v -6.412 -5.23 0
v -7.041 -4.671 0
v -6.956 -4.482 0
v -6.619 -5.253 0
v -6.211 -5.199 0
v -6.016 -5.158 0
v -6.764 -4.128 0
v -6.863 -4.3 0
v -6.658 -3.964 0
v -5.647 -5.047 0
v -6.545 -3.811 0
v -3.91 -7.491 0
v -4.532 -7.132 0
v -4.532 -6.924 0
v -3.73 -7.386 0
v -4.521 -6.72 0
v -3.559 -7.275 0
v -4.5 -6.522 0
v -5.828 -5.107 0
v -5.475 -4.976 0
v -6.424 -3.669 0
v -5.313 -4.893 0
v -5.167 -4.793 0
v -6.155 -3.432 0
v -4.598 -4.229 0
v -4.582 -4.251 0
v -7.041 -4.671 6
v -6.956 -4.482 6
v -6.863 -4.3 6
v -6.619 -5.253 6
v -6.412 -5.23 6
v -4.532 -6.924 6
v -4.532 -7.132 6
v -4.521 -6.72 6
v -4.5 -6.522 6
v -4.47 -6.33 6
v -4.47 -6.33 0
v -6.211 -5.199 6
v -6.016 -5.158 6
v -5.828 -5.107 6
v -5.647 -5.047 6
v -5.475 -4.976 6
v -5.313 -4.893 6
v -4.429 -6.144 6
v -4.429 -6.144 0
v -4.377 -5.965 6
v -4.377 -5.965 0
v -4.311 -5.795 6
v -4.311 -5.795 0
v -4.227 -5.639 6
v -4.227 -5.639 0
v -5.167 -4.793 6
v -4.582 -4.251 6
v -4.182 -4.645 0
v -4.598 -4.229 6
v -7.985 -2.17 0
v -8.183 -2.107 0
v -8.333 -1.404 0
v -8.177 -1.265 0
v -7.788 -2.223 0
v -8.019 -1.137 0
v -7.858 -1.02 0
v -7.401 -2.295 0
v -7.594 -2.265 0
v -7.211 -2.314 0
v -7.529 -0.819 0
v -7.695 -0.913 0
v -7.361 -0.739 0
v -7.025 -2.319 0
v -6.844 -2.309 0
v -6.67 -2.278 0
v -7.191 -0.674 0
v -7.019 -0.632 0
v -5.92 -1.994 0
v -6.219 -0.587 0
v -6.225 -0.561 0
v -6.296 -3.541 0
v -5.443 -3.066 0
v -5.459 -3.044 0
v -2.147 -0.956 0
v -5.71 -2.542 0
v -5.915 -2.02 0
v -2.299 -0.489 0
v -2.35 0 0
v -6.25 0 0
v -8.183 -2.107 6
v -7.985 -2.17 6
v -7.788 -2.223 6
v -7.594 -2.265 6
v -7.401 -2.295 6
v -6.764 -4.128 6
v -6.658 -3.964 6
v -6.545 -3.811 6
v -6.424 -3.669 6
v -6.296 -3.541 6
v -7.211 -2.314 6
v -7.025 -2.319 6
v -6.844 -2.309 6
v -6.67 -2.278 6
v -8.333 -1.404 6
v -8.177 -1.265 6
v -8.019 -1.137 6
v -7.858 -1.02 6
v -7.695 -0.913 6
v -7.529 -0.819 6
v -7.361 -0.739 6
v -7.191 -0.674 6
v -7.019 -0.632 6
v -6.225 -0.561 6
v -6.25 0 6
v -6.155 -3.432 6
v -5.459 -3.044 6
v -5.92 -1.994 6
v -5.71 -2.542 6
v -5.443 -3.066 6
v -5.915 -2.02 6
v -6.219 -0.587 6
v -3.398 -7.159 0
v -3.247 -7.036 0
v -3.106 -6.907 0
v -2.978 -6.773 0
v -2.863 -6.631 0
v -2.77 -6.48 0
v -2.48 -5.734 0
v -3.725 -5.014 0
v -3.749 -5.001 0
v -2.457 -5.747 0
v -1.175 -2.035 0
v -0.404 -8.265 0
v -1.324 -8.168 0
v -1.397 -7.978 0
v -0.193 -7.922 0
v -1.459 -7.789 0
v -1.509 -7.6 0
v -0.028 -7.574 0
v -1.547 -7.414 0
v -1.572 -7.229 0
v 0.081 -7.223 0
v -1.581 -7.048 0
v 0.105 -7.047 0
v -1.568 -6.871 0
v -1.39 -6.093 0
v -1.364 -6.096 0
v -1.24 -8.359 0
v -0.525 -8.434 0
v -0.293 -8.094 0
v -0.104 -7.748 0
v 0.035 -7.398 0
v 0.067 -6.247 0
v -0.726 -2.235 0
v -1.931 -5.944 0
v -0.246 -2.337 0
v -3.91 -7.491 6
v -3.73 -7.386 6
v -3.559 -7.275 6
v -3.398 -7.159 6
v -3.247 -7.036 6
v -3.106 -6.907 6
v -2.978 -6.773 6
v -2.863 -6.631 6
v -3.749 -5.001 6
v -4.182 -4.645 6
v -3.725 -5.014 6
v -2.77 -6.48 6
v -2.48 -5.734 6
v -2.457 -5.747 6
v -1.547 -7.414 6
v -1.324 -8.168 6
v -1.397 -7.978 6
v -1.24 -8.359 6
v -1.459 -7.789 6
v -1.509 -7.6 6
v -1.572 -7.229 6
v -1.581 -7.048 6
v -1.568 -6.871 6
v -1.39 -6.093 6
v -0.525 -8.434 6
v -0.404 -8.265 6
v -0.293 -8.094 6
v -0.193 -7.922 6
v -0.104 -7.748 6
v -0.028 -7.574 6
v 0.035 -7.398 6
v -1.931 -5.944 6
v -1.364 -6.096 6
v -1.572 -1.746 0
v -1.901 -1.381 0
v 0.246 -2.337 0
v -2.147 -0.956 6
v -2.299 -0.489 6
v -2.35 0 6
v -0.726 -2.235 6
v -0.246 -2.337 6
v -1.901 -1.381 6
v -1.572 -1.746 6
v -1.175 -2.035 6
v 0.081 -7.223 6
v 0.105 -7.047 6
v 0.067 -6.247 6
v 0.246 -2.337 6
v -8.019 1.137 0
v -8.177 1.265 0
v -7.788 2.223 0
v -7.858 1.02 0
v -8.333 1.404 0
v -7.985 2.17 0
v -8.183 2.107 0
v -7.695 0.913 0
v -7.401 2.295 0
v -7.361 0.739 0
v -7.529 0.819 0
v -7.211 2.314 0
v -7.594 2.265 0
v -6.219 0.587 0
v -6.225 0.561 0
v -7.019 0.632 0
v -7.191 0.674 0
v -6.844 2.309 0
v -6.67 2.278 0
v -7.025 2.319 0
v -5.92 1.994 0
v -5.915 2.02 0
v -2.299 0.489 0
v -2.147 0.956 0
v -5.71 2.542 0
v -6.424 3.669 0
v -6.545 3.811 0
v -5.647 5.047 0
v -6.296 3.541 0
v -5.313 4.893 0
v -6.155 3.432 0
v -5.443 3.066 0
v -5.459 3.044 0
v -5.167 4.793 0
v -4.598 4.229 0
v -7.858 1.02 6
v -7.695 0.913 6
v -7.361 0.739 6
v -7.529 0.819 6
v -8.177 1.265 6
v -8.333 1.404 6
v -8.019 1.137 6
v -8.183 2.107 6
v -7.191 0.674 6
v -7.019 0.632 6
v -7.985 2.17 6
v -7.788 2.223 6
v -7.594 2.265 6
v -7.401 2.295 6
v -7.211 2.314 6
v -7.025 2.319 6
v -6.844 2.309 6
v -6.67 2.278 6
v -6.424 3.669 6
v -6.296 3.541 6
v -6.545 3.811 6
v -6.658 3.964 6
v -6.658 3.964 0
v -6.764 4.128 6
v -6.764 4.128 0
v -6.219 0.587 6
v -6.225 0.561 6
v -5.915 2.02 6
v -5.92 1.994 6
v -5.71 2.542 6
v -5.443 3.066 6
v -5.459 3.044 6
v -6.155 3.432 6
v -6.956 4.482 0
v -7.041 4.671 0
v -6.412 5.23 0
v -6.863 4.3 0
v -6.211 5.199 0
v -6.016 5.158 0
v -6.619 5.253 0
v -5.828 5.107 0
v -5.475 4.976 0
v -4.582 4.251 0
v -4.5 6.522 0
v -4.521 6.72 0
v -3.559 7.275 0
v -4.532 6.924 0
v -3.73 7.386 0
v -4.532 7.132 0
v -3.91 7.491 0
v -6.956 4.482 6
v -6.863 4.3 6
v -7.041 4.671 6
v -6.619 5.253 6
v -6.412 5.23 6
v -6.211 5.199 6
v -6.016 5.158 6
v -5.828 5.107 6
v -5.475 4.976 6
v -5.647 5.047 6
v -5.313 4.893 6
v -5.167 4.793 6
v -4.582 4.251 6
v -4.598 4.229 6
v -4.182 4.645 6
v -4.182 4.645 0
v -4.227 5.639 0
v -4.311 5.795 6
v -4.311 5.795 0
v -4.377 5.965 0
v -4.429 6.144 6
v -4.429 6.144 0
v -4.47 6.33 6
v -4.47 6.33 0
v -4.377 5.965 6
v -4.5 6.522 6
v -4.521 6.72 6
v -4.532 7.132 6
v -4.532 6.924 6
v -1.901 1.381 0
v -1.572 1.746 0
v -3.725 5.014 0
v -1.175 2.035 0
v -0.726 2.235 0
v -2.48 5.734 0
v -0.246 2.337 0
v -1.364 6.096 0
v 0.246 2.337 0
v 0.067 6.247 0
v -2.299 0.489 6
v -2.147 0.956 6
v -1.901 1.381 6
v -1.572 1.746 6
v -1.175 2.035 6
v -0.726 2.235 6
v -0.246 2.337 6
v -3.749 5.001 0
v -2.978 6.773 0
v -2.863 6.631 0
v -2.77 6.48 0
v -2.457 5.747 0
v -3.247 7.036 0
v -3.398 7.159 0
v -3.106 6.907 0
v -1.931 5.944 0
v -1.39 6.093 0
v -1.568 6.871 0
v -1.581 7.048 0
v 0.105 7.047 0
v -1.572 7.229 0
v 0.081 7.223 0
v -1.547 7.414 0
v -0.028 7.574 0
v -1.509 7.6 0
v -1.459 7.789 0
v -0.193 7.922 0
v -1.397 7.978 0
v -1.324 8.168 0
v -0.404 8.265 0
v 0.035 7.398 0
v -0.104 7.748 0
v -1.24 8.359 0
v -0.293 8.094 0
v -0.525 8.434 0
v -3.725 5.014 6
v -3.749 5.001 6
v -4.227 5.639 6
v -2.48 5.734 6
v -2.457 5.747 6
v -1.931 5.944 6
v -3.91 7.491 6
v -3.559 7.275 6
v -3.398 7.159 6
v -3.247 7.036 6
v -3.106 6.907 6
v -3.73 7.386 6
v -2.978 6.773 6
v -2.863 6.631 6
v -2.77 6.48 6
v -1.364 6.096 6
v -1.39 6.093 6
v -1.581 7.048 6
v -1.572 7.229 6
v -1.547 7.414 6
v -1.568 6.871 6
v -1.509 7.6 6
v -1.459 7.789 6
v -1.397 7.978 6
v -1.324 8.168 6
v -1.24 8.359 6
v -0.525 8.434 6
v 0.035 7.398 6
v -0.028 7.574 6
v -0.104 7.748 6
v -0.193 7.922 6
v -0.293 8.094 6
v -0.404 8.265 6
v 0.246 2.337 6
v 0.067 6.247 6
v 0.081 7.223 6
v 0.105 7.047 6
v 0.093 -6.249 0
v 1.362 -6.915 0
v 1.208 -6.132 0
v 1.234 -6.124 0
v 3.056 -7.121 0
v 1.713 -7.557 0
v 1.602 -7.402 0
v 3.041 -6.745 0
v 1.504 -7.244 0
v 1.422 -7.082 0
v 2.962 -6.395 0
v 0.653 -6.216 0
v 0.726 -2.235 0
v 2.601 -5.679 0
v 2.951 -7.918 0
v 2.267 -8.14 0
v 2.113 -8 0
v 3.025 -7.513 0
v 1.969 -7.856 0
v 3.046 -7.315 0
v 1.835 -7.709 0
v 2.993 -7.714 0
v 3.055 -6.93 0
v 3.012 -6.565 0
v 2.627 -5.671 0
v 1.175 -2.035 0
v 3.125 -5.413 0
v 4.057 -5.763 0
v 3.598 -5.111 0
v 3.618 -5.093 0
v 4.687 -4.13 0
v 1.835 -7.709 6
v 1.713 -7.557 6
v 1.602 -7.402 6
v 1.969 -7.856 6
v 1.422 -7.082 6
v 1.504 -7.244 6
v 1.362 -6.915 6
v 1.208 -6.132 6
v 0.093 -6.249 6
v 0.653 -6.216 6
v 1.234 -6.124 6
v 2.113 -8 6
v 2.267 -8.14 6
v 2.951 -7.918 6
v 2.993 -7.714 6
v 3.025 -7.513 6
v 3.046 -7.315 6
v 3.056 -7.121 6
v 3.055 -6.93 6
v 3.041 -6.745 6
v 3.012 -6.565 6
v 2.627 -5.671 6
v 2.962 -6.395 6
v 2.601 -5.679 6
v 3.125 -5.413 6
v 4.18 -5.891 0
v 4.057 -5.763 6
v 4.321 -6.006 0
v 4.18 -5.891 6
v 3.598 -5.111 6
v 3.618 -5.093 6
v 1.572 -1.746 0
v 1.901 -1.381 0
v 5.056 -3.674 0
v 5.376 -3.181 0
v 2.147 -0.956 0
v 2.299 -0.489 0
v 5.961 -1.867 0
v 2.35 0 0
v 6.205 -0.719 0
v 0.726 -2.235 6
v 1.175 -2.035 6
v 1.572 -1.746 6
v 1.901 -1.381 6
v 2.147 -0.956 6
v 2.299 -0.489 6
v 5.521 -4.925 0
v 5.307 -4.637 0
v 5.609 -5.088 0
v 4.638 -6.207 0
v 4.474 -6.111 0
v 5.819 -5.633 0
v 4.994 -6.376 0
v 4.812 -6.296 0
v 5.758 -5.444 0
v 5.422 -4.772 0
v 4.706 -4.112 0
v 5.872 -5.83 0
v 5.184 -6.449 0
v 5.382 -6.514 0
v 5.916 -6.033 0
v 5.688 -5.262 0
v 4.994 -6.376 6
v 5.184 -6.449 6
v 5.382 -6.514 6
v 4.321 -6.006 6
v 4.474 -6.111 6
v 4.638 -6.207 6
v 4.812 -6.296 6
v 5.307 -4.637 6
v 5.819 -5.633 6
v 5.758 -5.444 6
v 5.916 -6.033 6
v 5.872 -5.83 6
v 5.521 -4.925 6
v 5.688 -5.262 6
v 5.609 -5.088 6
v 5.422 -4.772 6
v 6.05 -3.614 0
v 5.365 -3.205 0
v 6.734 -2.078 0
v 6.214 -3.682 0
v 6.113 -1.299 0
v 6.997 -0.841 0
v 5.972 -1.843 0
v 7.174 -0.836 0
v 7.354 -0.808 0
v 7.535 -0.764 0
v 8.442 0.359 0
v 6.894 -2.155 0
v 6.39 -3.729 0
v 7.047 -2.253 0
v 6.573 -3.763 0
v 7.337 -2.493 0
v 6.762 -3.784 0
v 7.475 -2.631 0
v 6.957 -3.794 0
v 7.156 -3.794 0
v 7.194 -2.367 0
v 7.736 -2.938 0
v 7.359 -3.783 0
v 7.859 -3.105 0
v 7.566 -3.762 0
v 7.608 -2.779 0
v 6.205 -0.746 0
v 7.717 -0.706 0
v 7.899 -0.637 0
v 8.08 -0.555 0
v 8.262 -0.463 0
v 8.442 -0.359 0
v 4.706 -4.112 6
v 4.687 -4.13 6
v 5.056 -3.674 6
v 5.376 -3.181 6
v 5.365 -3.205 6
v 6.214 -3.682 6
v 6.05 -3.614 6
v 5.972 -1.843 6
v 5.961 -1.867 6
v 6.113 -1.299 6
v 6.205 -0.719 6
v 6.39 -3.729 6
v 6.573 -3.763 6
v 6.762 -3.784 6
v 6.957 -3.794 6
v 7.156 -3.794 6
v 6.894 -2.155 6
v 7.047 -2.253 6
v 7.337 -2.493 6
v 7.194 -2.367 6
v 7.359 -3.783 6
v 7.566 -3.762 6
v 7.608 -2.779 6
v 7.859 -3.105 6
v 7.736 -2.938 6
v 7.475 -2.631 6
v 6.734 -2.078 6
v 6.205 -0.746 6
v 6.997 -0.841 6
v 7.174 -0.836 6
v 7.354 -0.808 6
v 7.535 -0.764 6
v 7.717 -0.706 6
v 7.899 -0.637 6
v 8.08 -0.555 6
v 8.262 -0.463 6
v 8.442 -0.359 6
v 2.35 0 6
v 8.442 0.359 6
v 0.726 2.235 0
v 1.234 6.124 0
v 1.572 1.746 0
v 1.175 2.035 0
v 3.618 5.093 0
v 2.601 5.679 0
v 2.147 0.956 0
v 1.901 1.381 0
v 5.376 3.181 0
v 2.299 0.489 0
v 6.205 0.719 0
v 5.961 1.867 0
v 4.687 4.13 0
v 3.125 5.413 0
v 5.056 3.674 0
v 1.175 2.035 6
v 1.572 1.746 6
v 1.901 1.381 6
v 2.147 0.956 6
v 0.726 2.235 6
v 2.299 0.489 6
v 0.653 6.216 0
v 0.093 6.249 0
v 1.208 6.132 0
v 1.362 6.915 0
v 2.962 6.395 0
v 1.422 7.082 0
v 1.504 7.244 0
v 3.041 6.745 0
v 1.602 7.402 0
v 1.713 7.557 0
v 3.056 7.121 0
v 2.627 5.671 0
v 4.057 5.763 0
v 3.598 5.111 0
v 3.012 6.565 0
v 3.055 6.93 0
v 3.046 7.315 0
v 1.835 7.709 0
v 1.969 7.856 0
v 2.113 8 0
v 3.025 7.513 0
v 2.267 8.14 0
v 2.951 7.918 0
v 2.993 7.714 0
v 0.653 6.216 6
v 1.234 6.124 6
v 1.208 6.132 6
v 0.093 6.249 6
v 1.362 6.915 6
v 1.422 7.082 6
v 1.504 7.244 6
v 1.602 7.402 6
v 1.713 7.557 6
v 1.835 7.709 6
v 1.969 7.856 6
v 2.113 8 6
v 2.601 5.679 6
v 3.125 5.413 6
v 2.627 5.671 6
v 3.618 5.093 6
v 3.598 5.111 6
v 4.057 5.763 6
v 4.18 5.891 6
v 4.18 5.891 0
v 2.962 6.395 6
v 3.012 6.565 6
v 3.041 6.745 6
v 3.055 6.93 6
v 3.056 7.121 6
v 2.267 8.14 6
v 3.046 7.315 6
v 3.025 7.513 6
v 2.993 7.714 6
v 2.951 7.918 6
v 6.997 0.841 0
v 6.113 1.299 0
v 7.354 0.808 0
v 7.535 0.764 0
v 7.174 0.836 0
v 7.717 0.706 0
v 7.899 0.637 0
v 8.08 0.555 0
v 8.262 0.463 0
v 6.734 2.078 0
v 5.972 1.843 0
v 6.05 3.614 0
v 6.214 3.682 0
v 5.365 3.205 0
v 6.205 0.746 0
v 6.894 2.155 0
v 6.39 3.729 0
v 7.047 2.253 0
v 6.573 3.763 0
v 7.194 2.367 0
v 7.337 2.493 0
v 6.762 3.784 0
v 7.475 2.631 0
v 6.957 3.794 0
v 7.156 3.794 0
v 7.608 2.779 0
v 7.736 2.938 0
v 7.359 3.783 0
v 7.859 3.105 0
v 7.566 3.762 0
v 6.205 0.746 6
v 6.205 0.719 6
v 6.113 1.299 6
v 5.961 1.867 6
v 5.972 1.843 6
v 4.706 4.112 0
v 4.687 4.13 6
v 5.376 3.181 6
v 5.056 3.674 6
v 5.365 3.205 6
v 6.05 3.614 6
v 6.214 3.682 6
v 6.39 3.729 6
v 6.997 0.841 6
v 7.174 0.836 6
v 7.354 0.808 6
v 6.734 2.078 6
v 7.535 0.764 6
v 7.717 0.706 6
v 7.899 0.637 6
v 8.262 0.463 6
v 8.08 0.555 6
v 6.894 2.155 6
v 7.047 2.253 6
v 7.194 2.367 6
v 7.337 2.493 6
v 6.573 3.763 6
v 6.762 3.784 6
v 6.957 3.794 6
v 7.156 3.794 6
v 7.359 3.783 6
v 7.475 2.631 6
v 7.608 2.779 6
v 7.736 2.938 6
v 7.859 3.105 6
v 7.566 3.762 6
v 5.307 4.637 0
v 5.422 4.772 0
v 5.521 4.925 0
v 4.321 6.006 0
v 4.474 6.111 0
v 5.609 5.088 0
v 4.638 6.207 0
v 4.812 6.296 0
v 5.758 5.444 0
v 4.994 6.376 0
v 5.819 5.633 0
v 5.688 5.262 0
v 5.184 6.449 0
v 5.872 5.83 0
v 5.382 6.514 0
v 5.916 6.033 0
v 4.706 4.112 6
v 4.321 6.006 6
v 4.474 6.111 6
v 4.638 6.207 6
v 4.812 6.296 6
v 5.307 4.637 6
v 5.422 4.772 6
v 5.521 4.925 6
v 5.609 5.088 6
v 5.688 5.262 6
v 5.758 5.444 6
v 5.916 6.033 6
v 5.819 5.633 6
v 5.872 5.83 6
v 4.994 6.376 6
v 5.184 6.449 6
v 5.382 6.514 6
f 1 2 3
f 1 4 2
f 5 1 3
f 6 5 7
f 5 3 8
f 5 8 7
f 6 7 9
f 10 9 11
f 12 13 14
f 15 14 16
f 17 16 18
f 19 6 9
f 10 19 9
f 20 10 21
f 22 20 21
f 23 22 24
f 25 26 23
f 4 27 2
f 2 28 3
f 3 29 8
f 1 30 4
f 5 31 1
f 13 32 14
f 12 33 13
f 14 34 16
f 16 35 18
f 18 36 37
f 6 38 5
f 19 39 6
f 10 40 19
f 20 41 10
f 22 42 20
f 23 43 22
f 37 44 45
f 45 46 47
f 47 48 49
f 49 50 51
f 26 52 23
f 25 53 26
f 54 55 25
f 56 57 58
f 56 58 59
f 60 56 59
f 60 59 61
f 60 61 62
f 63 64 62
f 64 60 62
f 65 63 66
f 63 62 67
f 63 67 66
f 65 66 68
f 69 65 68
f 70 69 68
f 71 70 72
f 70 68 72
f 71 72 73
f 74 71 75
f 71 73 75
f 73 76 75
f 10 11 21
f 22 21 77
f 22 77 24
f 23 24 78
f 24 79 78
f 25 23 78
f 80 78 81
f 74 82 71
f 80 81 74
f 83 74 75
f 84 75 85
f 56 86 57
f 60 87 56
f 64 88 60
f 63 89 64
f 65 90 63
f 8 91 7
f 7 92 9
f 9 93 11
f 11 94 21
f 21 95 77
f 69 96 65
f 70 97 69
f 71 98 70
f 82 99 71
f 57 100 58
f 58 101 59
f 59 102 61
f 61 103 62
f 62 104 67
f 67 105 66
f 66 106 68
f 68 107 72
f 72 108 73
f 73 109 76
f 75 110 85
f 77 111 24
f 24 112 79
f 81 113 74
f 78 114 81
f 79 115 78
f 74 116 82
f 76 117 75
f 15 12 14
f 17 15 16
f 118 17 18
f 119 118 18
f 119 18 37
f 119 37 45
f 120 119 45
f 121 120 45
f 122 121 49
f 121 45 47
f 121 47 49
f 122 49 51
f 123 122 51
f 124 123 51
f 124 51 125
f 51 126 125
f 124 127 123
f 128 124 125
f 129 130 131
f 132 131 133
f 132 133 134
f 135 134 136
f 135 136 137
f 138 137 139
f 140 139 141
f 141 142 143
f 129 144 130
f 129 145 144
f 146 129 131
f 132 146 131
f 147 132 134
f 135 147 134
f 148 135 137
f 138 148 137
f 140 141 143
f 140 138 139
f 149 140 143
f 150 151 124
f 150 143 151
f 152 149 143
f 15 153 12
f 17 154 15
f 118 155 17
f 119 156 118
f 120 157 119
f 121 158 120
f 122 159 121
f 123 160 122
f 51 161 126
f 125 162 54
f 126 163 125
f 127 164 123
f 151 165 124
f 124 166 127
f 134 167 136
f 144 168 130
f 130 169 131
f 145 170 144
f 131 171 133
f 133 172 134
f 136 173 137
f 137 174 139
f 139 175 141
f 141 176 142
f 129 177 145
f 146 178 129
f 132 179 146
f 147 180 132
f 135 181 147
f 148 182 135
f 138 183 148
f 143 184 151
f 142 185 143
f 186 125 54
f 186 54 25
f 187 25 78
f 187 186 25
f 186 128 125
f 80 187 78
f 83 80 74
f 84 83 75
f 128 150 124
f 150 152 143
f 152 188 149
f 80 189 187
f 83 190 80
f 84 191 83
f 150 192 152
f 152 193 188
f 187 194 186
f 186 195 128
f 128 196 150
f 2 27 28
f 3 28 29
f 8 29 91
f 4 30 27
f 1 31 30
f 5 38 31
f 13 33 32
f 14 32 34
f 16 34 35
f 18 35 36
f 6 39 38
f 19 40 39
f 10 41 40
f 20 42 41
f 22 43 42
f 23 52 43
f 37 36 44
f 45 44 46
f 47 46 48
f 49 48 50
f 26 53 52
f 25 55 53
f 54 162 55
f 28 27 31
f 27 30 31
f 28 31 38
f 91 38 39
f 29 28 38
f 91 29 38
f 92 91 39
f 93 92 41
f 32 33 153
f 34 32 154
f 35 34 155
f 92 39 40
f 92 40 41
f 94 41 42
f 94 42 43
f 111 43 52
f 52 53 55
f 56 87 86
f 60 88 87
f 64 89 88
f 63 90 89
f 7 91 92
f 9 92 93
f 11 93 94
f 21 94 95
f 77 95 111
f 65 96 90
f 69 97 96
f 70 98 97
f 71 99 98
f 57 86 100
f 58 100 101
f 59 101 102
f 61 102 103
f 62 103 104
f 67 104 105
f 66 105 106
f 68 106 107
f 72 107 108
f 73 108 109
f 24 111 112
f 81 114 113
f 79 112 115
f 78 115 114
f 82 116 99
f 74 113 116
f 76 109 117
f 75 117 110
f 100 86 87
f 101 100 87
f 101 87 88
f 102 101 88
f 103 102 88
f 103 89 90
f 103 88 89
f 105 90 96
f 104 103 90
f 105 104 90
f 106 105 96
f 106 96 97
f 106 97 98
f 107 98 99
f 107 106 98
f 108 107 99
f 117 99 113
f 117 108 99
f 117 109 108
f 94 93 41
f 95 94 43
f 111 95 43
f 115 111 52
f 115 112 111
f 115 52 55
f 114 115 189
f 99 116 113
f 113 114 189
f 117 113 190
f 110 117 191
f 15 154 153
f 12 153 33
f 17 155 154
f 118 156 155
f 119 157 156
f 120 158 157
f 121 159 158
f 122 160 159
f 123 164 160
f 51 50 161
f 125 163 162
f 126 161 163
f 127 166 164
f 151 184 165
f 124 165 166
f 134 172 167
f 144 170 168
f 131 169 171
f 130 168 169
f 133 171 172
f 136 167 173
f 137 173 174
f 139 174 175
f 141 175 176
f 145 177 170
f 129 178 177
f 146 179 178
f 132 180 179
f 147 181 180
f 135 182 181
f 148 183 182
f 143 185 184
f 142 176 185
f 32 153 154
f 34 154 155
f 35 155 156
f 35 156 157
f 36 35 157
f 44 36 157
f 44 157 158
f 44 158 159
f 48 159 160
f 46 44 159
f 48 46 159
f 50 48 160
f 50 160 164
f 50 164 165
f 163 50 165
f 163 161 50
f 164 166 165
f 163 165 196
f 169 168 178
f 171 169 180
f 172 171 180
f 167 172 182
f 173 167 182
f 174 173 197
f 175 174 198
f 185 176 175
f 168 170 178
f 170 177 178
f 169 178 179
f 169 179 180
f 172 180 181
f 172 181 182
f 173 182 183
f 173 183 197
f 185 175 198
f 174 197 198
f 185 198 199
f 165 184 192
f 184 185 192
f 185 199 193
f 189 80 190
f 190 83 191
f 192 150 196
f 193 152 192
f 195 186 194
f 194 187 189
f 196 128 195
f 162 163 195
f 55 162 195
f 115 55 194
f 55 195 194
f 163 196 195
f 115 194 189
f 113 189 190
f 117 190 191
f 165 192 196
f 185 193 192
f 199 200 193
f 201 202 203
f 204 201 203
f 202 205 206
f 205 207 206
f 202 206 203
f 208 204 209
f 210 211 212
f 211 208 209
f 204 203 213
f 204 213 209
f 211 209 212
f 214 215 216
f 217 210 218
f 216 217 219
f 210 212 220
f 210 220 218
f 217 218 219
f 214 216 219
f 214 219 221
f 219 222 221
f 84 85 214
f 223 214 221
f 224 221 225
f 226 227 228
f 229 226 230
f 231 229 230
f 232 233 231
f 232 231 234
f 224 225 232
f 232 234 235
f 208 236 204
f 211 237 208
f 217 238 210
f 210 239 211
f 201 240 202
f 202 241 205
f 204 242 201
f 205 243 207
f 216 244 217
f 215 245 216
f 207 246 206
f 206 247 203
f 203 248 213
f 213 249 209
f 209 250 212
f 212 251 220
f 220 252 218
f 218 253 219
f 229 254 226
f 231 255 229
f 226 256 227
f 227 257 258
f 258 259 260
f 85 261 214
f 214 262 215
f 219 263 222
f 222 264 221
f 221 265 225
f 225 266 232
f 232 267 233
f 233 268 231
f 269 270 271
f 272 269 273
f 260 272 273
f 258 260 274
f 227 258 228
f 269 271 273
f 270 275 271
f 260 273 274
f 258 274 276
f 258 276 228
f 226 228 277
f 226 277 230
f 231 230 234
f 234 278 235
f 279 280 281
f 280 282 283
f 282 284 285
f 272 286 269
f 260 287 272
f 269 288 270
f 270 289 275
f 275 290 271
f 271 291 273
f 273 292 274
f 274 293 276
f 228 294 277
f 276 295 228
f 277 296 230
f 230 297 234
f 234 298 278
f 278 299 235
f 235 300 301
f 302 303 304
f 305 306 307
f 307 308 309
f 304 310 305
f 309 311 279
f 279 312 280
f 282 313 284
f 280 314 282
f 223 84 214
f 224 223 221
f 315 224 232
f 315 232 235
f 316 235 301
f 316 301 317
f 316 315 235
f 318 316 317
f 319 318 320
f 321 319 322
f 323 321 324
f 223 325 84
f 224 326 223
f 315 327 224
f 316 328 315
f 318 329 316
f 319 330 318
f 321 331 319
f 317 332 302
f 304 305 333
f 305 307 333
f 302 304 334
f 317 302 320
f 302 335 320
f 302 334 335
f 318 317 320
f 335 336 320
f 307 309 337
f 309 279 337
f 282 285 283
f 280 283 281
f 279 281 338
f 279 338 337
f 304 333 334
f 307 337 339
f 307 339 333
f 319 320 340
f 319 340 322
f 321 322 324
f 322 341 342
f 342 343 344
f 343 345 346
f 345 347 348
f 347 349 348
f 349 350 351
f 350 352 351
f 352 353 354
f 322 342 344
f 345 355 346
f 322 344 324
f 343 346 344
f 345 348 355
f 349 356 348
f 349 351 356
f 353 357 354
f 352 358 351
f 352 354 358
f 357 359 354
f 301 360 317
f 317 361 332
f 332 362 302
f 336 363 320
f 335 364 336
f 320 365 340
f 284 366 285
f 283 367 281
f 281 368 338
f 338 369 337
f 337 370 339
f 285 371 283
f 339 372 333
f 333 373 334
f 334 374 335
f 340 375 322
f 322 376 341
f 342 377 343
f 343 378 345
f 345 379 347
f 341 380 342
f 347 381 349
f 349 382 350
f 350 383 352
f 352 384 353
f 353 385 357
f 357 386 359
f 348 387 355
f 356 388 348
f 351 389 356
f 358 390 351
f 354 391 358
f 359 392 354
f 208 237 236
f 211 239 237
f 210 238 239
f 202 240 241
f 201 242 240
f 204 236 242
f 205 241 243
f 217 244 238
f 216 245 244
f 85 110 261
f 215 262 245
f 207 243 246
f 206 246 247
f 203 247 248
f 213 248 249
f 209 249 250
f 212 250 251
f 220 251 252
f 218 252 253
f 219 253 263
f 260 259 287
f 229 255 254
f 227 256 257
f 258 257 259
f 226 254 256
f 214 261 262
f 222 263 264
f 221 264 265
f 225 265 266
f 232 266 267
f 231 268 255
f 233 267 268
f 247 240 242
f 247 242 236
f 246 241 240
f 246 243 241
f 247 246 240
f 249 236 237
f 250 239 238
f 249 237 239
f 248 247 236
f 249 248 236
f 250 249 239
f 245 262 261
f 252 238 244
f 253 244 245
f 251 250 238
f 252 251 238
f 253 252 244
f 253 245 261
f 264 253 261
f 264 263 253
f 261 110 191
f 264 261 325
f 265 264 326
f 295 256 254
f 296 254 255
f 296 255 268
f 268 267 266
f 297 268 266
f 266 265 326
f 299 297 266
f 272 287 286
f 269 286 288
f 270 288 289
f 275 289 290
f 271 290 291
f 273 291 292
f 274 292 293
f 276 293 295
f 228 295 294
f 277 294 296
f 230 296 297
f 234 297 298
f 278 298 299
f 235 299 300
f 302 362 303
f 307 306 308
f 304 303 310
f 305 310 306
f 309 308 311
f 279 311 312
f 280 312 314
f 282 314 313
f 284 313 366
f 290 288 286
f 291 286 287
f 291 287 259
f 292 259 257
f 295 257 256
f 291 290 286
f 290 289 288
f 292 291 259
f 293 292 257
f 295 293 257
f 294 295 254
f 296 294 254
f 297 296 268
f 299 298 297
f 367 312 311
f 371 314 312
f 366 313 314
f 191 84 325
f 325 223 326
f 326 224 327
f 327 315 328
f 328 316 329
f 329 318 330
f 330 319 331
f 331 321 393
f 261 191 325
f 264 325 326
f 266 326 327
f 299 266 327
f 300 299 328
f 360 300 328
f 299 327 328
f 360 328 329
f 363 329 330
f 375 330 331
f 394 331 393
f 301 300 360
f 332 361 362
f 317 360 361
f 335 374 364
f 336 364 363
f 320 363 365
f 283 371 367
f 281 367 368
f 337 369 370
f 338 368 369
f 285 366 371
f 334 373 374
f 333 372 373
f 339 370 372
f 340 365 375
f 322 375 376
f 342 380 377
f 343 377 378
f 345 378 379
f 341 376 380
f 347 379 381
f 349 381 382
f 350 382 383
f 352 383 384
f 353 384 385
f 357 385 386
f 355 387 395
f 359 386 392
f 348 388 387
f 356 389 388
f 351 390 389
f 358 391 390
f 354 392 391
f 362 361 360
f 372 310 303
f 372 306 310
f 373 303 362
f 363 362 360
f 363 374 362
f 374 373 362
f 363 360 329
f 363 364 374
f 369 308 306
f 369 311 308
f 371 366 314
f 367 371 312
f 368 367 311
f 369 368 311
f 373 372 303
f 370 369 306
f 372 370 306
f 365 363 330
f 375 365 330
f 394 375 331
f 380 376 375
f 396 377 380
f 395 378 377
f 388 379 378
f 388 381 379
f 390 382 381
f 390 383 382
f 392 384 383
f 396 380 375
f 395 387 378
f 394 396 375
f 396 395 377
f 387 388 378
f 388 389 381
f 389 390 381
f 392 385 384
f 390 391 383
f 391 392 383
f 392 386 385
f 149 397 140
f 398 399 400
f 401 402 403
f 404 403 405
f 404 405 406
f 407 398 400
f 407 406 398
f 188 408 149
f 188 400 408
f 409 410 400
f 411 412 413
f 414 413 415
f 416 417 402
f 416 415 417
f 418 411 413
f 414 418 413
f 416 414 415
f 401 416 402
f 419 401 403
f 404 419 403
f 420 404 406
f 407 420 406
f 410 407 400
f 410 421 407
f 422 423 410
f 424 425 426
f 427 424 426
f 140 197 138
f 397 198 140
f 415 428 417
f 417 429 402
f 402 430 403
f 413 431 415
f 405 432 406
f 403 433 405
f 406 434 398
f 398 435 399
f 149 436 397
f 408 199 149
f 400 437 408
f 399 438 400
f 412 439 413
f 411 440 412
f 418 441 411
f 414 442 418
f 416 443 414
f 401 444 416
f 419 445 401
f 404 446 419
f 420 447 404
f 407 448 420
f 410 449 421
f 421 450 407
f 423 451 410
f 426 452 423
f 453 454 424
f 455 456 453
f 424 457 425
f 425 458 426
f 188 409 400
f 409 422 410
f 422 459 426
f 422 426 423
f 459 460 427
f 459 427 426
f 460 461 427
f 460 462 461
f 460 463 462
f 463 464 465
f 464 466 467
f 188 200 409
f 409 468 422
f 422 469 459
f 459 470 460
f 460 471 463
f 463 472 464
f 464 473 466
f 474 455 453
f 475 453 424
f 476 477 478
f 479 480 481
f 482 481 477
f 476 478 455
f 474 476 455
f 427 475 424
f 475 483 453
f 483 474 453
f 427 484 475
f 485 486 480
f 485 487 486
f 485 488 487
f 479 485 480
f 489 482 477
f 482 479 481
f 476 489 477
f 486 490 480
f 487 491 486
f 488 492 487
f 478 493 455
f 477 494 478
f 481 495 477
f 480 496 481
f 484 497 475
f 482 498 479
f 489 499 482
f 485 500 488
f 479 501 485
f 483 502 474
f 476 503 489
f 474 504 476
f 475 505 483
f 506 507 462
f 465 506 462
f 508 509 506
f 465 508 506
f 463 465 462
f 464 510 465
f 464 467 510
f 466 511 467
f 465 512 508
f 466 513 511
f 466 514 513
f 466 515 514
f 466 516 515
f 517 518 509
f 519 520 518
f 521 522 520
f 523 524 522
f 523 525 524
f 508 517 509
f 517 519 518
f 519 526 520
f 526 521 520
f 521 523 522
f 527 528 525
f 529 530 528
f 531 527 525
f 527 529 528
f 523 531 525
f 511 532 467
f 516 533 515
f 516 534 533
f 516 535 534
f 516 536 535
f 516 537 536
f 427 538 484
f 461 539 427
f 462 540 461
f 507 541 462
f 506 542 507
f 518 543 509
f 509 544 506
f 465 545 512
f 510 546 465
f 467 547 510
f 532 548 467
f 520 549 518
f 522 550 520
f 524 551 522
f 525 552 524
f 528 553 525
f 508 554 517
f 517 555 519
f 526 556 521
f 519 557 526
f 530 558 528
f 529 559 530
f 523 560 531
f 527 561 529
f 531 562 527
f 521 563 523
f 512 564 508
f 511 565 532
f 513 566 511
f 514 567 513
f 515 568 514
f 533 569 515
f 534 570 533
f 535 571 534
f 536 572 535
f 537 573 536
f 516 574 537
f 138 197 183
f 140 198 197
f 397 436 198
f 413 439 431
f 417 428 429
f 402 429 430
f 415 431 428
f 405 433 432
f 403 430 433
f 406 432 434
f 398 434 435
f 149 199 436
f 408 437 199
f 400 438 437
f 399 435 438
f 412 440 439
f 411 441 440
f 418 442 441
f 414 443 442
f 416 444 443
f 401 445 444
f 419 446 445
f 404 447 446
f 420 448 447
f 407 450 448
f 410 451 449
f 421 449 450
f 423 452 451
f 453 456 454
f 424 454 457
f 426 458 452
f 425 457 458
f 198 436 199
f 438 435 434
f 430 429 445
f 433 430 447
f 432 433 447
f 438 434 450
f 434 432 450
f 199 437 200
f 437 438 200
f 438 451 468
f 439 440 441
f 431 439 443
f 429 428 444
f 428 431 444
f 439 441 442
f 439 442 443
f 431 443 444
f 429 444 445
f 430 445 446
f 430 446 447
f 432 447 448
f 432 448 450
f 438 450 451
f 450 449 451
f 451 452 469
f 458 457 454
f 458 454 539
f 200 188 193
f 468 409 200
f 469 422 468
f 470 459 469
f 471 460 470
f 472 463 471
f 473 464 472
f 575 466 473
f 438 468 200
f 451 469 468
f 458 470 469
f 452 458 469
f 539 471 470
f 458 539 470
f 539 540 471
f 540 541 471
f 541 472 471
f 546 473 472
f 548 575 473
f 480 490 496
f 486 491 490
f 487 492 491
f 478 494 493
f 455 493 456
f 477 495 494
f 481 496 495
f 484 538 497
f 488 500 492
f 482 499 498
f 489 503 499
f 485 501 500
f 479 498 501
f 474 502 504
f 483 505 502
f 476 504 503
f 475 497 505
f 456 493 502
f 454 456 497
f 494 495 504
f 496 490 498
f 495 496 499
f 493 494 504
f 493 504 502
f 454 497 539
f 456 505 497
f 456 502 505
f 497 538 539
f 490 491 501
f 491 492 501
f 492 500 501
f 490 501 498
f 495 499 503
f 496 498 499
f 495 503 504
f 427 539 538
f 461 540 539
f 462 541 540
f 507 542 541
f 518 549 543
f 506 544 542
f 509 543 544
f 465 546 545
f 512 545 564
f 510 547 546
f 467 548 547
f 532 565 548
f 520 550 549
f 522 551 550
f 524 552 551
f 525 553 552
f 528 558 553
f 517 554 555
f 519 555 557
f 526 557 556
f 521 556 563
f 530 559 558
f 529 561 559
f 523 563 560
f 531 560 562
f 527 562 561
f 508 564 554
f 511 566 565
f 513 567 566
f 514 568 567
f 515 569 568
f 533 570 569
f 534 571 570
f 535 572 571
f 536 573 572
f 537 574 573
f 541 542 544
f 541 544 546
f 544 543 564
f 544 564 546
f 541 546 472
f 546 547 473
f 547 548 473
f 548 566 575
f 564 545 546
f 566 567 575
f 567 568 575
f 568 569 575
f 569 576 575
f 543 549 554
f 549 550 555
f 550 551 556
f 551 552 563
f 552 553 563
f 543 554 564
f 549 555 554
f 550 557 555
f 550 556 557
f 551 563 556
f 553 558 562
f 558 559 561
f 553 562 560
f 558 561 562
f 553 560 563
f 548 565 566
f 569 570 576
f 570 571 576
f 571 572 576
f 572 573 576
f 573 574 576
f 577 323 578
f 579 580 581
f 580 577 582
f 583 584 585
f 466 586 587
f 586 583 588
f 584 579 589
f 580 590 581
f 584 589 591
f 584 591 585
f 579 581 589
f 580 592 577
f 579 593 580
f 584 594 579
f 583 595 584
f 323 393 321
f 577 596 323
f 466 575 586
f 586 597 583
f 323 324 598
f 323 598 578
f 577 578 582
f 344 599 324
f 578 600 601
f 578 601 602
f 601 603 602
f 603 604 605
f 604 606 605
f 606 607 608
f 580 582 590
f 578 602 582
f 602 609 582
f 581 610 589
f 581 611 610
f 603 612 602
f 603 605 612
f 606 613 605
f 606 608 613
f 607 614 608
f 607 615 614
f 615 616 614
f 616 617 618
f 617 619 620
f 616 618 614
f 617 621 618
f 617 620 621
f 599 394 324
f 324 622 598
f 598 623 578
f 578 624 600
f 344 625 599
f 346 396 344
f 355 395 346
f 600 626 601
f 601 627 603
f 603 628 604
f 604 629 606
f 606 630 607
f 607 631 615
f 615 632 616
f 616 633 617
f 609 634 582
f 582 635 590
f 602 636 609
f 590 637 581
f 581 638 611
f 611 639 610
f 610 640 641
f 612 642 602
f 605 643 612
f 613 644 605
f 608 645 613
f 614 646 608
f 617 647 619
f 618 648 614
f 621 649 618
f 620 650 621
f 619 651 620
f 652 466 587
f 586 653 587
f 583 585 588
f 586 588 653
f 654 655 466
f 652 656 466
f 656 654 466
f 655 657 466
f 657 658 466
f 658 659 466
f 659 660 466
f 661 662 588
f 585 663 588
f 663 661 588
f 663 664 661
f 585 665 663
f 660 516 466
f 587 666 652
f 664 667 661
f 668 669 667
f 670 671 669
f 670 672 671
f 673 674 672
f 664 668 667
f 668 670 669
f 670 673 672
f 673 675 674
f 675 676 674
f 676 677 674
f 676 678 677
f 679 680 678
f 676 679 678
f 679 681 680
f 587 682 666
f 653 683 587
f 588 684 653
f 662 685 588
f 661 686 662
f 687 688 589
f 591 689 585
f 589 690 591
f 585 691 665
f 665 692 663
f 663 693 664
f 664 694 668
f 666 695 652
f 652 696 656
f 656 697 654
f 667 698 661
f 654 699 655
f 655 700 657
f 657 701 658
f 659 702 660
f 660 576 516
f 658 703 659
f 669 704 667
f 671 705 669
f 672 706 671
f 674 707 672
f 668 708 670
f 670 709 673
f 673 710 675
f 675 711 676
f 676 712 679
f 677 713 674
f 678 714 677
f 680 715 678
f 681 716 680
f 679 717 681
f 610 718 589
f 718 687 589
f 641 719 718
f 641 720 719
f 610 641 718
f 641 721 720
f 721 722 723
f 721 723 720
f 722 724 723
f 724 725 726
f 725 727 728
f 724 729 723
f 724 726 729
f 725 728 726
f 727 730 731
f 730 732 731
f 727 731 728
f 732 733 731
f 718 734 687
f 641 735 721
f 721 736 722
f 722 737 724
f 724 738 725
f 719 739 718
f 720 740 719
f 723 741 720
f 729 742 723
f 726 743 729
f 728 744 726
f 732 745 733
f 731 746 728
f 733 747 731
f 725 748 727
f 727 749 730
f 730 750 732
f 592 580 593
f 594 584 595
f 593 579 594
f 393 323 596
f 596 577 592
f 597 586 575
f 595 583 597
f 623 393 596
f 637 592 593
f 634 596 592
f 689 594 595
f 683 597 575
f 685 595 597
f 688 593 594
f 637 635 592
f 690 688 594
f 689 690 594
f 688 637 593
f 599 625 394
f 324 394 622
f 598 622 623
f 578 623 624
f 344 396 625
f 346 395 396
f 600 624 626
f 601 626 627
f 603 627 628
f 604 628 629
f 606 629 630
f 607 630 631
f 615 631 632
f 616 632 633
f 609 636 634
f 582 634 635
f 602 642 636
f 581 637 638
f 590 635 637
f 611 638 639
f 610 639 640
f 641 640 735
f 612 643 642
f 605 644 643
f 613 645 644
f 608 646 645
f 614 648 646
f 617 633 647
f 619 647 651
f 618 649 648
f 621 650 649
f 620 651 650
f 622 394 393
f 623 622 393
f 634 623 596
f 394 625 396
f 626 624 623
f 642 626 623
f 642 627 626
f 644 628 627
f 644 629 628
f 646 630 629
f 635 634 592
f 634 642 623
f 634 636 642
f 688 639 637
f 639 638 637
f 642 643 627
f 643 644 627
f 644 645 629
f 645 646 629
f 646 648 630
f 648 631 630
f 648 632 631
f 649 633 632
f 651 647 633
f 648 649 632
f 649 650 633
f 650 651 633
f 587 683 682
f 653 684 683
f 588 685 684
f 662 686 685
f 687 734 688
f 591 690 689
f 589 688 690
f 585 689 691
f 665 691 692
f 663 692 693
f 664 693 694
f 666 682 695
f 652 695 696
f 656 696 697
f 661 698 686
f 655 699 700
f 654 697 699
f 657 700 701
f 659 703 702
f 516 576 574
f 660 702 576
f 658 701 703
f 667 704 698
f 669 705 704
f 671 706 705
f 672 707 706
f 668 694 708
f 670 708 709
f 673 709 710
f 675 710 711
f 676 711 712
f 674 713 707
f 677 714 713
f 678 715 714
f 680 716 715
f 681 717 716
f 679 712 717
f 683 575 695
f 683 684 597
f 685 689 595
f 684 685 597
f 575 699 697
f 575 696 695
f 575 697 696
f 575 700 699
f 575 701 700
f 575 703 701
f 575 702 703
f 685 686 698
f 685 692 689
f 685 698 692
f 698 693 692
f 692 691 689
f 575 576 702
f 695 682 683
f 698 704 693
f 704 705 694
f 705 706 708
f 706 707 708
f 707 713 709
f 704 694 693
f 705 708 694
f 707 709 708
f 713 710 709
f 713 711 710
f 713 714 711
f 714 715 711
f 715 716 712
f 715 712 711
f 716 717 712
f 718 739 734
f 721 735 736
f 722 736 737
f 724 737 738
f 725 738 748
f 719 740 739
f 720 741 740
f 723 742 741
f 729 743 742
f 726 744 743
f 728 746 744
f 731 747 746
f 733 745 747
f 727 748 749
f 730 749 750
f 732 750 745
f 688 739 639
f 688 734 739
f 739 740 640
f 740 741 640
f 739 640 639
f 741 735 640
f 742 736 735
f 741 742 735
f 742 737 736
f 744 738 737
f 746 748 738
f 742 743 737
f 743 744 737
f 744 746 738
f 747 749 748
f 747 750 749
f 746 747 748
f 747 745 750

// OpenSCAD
// file: lib/lib.scad
// Shared helpers. Include AFTER params.scad (needs TOL, M3_* etc.).
$fa = 4; $fs = 0.5;

module rrect(size, r) {            // 2D rounded rectangle, centred
    r2 = min(r, min(size[0], size[1]) / 2 - 0.001);
    offset(r = r2) square([size[0] - 2 * r2, size[1] - 2 * r2], center = true);
}
module rbox(size, r, center_xy = true) {   // box with rounded vertical edges
    translate(center_xy ? [0, 0, 0] : [size[0] / 2, size[1] / 2, 0])
        linear_extrude(size[2]) rrect([size[0], size[1]], r);
}
module rbox_at(x0, x1, y0, y1, z0, z1, r = 0.01) {
    translate([(x0 + x1) / 2, (y0 + y1) / 2, z0]) rbox([x1 - x0, y1 - y0, z1 - z0], r);
}
module box_at(x0, x1, y0, y1, z0, z1) { translate([x0, y0, z0]) cube([x1 - x0, y1 - y0, z1 - z0]); }

module ring(ro, ri, h) { difference() { cylinder(r = ro, h = h); translate([0, 0, -1]) cylinder(r = ri, h = h + 2); } }
module ring_sector(ro, ri, h, a0, a1) {
    intersection() {
        ring(ro, ri, h);
        linear_extrude(h) polygon(concat([[0, 0]], [for (a = [a0 : (a1 - a0) / 24 : a1]) 2 * ro * [cos(a), sin(a)]]));
    }
}
// teardrop hole along an axis lying horizontal (axis = Y after rotation), printable w/o support
module teardrop2d(d) { union() { circle(d = d); rotate(45) square(d / 2); } }
// vertical heat-set insert hole, opening at z=0 going +z (depth l)
module insert_hole(l = M3_INSERT_L) { translate([0, 0, -EPS]) cylinder(d = M3_INSERT_D, h = l + EPS); }
module m3_clear(l) { translate([0, 0, -EPS]) cylinder(d = M3_CLEAR, h = l + 2 * EPS); }
module m3_csk(l) {  // countersunk clearance from z=0 upward, head at z=0 side
    translate([0, 0, -EPS]) { cylinder(d = M3_CLEAR, h = l + 2 * EPS); cylinder(d1 = 6.4, d2 = M3_CLEAR, h = 1.7); }
}
module card2d() { rrect([CARD_L, CARD_W], CARD_R); }
module card_at(cy, z) { translate([0, cy, z]) linear_extrude(CARD_T) card2d(); }

// ---- gears ----
function _inv(a) = tan(a) - a * PI_ / 180;           // involute function, a in deg
function _invpt(rb, r, ang0, s) = let(al = acos(rb / r), th = ang0 - s * (_inv(al) * 180 / PI_)) [r * cos(th), r * sin(th)];
module involute_gear2d(m, z, pa = 20, clearance = 0.05) {
    rp = m * z / 2; rb = rp * cos(pa); ra = rp + m - clearance; rf = rp - 1.25 * m;
    half = 90 / z + _inv(pa) * 180 / PI_;            // tooth half-angle at base (deg)
    n = 8;
    rs = [for (i = [0 : n]) max(rb, rf) + (ra - max(rb, rf)) * i / n];
    union() {
        circle(r = rf, $fn = z * 4);
        for (k = [0 : z - 1]) rotate(k * 360 / z) polygon(concat(
            [[rf * cos(-half), rf * sin(-half)]],
            [for (r = rs) let(p = _invpt(rb, r, half, 1)) [p[0], -p[1]]],
            [for (i = [n : -1 : 0]) _invpt(rb, rs[i], half, 1)],
            [[rf * cos(half), rf * sin(half)]]));
    }
}
// straight gear rack (2D in XY: teeth along +x, pointing -y, pitch line at y=0)
module gear_rack2d(m, len, back = 3) {
    p = PI_ * m; ad = m; de = 1.25 * m; t = tan(20);
    n = ceil(len / p) + 1;
    intersection() {
        union() {
            translate([0, de]) square([len, back]);
            for (i = [0 : n]) translate([i * p - p / 4, 0]) polygon([
                [-(p / 4 + de * t), de + 0.01], [p / 4 + de * t + 0.01, de + 0.01],
                [p / 4 - ad * t, -ad], [-(p / 4 - ad * t), -ad] ]);
        }
        translate([0, -ad - 1]) square([len, ad + de + back + 2]);
    }
}
// GT2 belt-tooth profile ring (teeth outward), 2D
module gt2_ring2d(n, r_land, ri) {
    union() {
        difference() { circle(r = r_land + 0.01, $fn = n * 2); circle(r = ri, $fn = n * 2); }
        for (k = [0 : n - 1]) rotate(k * 360 / n)
            translate([r_land, 0]) hull() { translate([-0.2, 0]) square([0.2, 1.0], center = true); translate([0.25, 0]) circle(r = 0.5, $fn = 12); }
    }
}
// main file
// Pusher pinion: m1, 15 teeth (r 7.5 mm -> 19.6 mm stroke for 150 deg servo travel),
// pressed on the MG90S spline + horn screw. Print: flat.
include <params.scad>
include <lib/lib.scad>
// phase: put a rack gap over the pinion's top tooth
_p = PI_ * PIN_M;  _y0 = CARRIER_Y0 - CARRIER_L;
_gap = _y0 + _p / 4 + _p * round((PIN_Y - _y0 - _p / 4) / _p);
PIN_PHASE = (_gap - PIN_Y) / PIN_R * 180 / PI_;
module pusher_pinion2d() difference() { involute_gear2d(PIN_M, PIN_T); circle(d = 4.7); }
module pusher_pinion(rot = 0) translate([-PIN_W / 2, PIN_Y, PIN_Z]) rotate([0, 90, 0]) rotate(180 - PIN_PHASE + rot) linear_extrude(PIN_W) pusher_pinion2d();
module pusher_pinion_print() linear_extrude(PIN_W) pusher_pinion2d();
pusher_pinion_print();
